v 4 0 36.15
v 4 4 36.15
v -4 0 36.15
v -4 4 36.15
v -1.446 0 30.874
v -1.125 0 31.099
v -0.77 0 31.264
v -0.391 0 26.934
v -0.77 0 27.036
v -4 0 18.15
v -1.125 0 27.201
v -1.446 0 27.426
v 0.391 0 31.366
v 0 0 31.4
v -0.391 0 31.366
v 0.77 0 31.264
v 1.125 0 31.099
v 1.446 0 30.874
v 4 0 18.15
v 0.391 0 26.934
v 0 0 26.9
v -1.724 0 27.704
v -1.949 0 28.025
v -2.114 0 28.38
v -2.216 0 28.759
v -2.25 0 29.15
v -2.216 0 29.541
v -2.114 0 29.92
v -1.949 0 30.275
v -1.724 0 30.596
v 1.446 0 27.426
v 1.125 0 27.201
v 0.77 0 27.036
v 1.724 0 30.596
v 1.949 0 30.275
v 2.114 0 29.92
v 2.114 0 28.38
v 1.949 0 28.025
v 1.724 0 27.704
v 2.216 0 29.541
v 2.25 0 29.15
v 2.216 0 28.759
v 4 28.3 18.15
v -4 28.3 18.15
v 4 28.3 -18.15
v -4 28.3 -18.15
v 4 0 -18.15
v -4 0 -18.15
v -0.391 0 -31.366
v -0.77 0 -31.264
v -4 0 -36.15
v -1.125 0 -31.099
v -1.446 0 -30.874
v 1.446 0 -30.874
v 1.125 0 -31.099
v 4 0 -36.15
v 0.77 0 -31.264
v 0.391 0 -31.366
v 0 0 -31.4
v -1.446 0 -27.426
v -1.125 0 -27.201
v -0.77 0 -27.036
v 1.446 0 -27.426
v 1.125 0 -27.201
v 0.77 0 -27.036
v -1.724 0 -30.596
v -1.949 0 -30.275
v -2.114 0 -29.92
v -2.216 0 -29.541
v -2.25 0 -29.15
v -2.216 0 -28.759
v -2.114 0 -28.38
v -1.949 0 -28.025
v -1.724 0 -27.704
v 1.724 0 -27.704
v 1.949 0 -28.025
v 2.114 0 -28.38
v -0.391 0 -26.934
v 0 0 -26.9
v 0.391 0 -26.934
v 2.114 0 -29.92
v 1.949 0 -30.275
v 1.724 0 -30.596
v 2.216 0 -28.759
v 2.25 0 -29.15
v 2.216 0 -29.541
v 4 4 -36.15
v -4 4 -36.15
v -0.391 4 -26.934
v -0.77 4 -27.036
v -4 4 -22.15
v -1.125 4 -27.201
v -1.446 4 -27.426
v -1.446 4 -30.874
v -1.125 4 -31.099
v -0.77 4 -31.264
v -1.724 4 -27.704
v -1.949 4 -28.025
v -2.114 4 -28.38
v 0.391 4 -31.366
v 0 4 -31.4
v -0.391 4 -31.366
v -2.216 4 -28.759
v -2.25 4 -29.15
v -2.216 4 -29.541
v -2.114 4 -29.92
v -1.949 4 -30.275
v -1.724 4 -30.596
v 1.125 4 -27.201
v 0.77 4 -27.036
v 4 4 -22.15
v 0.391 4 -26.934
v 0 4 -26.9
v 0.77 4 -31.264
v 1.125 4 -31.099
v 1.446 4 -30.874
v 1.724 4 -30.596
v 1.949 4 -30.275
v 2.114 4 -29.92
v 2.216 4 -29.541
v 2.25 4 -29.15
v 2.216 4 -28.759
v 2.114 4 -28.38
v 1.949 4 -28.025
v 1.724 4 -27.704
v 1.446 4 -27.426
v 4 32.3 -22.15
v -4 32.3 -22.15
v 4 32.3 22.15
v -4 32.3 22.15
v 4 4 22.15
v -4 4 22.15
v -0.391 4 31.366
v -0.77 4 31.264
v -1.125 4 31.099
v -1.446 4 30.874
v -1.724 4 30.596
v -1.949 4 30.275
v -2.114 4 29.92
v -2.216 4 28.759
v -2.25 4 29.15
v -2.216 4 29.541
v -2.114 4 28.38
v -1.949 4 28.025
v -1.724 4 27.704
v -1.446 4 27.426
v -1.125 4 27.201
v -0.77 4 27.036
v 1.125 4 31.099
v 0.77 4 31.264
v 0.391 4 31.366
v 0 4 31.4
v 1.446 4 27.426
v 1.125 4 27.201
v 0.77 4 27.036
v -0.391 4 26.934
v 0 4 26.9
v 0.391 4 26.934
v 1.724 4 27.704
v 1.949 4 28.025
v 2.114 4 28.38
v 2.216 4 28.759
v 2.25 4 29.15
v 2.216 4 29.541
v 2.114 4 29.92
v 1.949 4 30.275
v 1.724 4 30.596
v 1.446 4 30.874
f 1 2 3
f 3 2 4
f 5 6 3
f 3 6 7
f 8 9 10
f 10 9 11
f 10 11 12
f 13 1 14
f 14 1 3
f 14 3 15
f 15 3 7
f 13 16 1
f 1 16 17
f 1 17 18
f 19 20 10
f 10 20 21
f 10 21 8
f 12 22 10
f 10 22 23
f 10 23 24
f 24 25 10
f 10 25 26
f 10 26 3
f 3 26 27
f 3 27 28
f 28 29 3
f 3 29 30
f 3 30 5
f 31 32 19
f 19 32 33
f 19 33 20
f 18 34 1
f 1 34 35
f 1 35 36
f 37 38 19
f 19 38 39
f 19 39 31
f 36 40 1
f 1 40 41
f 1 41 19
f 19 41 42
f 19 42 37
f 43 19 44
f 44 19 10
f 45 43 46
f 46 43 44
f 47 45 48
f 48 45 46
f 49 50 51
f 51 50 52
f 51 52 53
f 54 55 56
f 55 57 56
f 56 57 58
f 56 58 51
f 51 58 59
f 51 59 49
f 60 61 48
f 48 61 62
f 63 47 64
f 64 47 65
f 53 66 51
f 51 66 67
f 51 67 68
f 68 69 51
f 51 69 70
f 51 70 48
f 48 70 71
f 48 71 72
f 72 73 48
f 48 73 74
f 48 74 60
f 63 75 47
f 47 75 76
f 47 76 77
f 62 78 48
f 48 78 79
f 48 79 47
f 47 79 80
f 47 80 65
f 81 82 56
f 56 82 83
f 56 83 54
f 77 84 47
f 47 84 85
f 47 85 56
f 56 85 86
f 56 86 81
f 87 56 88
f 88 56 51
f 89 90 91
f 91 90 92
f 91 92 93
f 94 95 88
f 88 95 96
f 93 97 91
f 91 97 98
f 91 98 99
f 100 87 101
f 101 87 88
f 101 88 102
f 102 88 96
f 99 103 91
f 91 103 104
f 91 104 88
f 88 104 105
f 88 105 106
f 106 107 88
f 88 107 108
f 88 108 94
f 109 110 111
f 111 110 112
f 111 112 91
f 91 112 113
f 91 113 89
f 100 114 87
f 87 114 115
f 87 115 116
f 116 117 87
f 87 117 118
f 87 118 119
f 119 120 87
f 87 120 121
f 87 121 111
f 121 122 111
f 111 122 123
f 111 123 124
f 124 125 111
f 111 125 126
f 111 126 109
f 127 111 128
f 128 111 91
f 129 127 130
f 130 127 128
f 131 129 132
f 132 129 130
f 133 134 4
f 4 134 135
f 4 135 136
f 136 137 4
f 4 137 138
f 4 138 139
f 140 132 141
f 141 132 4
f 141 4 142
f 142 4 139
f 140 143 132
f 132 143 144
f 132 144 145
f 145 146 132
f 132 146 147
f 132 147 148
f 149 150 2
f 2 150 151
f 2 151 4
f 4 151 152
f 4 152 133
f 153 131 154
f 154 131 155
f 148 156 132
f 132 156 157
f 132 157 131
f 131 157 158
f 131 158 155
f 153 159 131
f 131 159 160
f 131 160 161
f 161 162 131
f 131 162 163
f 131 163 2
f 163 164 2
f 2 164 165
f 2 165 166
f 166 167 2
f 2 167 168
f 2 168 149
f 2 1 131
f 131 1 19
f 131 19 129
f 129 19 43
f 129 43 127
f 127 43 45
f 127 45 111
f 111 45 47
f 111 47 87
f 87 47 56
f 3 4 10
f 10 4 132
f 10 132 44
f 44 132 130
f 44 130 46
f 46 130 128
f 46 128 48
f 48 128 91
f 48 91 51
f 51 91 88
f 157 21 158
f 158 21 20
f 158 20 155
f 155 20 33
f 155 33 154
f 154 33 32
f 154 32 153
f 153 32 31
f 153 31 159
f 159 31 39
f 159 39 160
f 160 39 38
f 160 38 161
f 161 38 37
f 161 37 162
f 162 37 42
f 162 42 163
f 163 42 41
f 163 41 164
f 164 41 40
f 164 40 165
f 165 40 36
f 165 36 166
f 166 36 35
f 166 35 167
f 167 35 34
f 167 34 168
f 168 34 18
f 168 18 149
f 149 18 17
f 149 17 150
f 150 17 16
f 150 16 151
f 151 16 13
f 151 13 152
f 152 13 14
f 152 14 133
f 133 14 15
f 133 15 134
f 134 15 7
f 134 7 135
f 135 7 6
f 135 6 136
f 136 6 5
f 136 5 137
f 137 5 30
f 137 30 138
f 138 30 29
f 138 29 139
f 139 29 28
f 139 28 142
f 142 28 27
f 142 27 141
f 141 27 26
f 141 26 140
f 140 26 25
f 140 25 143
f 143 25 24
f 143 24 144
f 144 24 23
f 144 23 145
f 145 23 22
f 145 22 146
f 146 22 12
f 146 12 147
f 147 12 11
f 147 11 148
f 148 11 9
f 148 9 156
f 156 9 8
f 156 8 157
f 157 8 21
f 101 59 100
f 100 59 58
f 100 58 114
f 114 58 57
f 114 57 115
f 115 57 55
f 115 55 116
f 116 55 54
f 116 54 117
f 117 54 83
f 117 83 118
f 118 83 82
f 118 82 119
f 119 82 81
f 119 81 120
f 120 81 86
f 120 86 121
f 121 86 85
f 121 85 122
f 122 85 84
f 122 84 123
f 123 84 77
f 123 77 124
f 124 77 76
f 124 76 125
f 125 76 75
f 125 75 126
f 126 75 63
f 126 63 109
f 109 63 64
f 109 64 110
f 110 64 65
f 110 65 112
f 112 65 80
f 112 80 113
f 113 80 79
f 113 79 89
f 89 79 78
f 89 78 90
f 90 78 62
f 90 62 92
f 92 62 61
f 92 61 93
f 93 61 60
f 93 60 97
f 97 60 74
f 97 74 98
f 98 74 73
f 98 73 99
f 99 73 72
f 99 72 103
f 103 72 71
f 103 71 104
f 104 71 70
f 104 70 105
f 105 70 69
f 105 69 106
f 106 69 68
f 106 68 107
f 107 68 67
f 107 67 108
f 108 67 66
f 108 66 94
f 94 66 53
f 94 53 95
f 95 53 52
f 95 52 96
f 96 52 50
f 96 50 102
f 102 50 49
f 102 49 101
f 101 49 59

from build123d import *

# Parameters (mm, degrees)
STRAP_DEPTH        = 4
EAR_HOLES_M4_START = -0.5
SKETCH2_R          = 2.25
EAR_HOLES_M4_DEPTH = 5


with BuildPart() as part:
    # Sketch1 → Strap (new, symmetric)
    with BuildSketch(Plane(origin=(0, 0, 0), x_dir=(0, 0, -1), z_dir=(1, 0, 0))):
        Polygon((-36.15, 0), (-18.15, 0), (-18.15, 28.3), (18.15, 28.3), (18.15, 0), (36.15, 0), (36.15, 4), (22.15, 4), (22.15, 32.3), (-22.15, 32.3), (-22.15, 4), (-36.15, 4), align=None)
    extrude(amount=STRAP_DEPTH, both=True)

    # Sketch2 → Ear_Holes_M4 (cut)
    with BuildSketch(Plane(origin=(0, 0, 0), x_dir=(1, 0, 0), z_dir=(0, 1, 0)).offset(EAR_HOLES_M4_START)):
        with Locations(Location((0, 29.15, 0), (0, 0, 90))):
            Circle(SKETCH2_R)
        with Locations(Location((0, -29.15, 0), (0, 0, 90))):
            Circle(SKETCH2_R)
    extrude(amount=EAR_HOLES_M4_DEPTH, mode=Mode.SUBTRACT)


solid = part.part
